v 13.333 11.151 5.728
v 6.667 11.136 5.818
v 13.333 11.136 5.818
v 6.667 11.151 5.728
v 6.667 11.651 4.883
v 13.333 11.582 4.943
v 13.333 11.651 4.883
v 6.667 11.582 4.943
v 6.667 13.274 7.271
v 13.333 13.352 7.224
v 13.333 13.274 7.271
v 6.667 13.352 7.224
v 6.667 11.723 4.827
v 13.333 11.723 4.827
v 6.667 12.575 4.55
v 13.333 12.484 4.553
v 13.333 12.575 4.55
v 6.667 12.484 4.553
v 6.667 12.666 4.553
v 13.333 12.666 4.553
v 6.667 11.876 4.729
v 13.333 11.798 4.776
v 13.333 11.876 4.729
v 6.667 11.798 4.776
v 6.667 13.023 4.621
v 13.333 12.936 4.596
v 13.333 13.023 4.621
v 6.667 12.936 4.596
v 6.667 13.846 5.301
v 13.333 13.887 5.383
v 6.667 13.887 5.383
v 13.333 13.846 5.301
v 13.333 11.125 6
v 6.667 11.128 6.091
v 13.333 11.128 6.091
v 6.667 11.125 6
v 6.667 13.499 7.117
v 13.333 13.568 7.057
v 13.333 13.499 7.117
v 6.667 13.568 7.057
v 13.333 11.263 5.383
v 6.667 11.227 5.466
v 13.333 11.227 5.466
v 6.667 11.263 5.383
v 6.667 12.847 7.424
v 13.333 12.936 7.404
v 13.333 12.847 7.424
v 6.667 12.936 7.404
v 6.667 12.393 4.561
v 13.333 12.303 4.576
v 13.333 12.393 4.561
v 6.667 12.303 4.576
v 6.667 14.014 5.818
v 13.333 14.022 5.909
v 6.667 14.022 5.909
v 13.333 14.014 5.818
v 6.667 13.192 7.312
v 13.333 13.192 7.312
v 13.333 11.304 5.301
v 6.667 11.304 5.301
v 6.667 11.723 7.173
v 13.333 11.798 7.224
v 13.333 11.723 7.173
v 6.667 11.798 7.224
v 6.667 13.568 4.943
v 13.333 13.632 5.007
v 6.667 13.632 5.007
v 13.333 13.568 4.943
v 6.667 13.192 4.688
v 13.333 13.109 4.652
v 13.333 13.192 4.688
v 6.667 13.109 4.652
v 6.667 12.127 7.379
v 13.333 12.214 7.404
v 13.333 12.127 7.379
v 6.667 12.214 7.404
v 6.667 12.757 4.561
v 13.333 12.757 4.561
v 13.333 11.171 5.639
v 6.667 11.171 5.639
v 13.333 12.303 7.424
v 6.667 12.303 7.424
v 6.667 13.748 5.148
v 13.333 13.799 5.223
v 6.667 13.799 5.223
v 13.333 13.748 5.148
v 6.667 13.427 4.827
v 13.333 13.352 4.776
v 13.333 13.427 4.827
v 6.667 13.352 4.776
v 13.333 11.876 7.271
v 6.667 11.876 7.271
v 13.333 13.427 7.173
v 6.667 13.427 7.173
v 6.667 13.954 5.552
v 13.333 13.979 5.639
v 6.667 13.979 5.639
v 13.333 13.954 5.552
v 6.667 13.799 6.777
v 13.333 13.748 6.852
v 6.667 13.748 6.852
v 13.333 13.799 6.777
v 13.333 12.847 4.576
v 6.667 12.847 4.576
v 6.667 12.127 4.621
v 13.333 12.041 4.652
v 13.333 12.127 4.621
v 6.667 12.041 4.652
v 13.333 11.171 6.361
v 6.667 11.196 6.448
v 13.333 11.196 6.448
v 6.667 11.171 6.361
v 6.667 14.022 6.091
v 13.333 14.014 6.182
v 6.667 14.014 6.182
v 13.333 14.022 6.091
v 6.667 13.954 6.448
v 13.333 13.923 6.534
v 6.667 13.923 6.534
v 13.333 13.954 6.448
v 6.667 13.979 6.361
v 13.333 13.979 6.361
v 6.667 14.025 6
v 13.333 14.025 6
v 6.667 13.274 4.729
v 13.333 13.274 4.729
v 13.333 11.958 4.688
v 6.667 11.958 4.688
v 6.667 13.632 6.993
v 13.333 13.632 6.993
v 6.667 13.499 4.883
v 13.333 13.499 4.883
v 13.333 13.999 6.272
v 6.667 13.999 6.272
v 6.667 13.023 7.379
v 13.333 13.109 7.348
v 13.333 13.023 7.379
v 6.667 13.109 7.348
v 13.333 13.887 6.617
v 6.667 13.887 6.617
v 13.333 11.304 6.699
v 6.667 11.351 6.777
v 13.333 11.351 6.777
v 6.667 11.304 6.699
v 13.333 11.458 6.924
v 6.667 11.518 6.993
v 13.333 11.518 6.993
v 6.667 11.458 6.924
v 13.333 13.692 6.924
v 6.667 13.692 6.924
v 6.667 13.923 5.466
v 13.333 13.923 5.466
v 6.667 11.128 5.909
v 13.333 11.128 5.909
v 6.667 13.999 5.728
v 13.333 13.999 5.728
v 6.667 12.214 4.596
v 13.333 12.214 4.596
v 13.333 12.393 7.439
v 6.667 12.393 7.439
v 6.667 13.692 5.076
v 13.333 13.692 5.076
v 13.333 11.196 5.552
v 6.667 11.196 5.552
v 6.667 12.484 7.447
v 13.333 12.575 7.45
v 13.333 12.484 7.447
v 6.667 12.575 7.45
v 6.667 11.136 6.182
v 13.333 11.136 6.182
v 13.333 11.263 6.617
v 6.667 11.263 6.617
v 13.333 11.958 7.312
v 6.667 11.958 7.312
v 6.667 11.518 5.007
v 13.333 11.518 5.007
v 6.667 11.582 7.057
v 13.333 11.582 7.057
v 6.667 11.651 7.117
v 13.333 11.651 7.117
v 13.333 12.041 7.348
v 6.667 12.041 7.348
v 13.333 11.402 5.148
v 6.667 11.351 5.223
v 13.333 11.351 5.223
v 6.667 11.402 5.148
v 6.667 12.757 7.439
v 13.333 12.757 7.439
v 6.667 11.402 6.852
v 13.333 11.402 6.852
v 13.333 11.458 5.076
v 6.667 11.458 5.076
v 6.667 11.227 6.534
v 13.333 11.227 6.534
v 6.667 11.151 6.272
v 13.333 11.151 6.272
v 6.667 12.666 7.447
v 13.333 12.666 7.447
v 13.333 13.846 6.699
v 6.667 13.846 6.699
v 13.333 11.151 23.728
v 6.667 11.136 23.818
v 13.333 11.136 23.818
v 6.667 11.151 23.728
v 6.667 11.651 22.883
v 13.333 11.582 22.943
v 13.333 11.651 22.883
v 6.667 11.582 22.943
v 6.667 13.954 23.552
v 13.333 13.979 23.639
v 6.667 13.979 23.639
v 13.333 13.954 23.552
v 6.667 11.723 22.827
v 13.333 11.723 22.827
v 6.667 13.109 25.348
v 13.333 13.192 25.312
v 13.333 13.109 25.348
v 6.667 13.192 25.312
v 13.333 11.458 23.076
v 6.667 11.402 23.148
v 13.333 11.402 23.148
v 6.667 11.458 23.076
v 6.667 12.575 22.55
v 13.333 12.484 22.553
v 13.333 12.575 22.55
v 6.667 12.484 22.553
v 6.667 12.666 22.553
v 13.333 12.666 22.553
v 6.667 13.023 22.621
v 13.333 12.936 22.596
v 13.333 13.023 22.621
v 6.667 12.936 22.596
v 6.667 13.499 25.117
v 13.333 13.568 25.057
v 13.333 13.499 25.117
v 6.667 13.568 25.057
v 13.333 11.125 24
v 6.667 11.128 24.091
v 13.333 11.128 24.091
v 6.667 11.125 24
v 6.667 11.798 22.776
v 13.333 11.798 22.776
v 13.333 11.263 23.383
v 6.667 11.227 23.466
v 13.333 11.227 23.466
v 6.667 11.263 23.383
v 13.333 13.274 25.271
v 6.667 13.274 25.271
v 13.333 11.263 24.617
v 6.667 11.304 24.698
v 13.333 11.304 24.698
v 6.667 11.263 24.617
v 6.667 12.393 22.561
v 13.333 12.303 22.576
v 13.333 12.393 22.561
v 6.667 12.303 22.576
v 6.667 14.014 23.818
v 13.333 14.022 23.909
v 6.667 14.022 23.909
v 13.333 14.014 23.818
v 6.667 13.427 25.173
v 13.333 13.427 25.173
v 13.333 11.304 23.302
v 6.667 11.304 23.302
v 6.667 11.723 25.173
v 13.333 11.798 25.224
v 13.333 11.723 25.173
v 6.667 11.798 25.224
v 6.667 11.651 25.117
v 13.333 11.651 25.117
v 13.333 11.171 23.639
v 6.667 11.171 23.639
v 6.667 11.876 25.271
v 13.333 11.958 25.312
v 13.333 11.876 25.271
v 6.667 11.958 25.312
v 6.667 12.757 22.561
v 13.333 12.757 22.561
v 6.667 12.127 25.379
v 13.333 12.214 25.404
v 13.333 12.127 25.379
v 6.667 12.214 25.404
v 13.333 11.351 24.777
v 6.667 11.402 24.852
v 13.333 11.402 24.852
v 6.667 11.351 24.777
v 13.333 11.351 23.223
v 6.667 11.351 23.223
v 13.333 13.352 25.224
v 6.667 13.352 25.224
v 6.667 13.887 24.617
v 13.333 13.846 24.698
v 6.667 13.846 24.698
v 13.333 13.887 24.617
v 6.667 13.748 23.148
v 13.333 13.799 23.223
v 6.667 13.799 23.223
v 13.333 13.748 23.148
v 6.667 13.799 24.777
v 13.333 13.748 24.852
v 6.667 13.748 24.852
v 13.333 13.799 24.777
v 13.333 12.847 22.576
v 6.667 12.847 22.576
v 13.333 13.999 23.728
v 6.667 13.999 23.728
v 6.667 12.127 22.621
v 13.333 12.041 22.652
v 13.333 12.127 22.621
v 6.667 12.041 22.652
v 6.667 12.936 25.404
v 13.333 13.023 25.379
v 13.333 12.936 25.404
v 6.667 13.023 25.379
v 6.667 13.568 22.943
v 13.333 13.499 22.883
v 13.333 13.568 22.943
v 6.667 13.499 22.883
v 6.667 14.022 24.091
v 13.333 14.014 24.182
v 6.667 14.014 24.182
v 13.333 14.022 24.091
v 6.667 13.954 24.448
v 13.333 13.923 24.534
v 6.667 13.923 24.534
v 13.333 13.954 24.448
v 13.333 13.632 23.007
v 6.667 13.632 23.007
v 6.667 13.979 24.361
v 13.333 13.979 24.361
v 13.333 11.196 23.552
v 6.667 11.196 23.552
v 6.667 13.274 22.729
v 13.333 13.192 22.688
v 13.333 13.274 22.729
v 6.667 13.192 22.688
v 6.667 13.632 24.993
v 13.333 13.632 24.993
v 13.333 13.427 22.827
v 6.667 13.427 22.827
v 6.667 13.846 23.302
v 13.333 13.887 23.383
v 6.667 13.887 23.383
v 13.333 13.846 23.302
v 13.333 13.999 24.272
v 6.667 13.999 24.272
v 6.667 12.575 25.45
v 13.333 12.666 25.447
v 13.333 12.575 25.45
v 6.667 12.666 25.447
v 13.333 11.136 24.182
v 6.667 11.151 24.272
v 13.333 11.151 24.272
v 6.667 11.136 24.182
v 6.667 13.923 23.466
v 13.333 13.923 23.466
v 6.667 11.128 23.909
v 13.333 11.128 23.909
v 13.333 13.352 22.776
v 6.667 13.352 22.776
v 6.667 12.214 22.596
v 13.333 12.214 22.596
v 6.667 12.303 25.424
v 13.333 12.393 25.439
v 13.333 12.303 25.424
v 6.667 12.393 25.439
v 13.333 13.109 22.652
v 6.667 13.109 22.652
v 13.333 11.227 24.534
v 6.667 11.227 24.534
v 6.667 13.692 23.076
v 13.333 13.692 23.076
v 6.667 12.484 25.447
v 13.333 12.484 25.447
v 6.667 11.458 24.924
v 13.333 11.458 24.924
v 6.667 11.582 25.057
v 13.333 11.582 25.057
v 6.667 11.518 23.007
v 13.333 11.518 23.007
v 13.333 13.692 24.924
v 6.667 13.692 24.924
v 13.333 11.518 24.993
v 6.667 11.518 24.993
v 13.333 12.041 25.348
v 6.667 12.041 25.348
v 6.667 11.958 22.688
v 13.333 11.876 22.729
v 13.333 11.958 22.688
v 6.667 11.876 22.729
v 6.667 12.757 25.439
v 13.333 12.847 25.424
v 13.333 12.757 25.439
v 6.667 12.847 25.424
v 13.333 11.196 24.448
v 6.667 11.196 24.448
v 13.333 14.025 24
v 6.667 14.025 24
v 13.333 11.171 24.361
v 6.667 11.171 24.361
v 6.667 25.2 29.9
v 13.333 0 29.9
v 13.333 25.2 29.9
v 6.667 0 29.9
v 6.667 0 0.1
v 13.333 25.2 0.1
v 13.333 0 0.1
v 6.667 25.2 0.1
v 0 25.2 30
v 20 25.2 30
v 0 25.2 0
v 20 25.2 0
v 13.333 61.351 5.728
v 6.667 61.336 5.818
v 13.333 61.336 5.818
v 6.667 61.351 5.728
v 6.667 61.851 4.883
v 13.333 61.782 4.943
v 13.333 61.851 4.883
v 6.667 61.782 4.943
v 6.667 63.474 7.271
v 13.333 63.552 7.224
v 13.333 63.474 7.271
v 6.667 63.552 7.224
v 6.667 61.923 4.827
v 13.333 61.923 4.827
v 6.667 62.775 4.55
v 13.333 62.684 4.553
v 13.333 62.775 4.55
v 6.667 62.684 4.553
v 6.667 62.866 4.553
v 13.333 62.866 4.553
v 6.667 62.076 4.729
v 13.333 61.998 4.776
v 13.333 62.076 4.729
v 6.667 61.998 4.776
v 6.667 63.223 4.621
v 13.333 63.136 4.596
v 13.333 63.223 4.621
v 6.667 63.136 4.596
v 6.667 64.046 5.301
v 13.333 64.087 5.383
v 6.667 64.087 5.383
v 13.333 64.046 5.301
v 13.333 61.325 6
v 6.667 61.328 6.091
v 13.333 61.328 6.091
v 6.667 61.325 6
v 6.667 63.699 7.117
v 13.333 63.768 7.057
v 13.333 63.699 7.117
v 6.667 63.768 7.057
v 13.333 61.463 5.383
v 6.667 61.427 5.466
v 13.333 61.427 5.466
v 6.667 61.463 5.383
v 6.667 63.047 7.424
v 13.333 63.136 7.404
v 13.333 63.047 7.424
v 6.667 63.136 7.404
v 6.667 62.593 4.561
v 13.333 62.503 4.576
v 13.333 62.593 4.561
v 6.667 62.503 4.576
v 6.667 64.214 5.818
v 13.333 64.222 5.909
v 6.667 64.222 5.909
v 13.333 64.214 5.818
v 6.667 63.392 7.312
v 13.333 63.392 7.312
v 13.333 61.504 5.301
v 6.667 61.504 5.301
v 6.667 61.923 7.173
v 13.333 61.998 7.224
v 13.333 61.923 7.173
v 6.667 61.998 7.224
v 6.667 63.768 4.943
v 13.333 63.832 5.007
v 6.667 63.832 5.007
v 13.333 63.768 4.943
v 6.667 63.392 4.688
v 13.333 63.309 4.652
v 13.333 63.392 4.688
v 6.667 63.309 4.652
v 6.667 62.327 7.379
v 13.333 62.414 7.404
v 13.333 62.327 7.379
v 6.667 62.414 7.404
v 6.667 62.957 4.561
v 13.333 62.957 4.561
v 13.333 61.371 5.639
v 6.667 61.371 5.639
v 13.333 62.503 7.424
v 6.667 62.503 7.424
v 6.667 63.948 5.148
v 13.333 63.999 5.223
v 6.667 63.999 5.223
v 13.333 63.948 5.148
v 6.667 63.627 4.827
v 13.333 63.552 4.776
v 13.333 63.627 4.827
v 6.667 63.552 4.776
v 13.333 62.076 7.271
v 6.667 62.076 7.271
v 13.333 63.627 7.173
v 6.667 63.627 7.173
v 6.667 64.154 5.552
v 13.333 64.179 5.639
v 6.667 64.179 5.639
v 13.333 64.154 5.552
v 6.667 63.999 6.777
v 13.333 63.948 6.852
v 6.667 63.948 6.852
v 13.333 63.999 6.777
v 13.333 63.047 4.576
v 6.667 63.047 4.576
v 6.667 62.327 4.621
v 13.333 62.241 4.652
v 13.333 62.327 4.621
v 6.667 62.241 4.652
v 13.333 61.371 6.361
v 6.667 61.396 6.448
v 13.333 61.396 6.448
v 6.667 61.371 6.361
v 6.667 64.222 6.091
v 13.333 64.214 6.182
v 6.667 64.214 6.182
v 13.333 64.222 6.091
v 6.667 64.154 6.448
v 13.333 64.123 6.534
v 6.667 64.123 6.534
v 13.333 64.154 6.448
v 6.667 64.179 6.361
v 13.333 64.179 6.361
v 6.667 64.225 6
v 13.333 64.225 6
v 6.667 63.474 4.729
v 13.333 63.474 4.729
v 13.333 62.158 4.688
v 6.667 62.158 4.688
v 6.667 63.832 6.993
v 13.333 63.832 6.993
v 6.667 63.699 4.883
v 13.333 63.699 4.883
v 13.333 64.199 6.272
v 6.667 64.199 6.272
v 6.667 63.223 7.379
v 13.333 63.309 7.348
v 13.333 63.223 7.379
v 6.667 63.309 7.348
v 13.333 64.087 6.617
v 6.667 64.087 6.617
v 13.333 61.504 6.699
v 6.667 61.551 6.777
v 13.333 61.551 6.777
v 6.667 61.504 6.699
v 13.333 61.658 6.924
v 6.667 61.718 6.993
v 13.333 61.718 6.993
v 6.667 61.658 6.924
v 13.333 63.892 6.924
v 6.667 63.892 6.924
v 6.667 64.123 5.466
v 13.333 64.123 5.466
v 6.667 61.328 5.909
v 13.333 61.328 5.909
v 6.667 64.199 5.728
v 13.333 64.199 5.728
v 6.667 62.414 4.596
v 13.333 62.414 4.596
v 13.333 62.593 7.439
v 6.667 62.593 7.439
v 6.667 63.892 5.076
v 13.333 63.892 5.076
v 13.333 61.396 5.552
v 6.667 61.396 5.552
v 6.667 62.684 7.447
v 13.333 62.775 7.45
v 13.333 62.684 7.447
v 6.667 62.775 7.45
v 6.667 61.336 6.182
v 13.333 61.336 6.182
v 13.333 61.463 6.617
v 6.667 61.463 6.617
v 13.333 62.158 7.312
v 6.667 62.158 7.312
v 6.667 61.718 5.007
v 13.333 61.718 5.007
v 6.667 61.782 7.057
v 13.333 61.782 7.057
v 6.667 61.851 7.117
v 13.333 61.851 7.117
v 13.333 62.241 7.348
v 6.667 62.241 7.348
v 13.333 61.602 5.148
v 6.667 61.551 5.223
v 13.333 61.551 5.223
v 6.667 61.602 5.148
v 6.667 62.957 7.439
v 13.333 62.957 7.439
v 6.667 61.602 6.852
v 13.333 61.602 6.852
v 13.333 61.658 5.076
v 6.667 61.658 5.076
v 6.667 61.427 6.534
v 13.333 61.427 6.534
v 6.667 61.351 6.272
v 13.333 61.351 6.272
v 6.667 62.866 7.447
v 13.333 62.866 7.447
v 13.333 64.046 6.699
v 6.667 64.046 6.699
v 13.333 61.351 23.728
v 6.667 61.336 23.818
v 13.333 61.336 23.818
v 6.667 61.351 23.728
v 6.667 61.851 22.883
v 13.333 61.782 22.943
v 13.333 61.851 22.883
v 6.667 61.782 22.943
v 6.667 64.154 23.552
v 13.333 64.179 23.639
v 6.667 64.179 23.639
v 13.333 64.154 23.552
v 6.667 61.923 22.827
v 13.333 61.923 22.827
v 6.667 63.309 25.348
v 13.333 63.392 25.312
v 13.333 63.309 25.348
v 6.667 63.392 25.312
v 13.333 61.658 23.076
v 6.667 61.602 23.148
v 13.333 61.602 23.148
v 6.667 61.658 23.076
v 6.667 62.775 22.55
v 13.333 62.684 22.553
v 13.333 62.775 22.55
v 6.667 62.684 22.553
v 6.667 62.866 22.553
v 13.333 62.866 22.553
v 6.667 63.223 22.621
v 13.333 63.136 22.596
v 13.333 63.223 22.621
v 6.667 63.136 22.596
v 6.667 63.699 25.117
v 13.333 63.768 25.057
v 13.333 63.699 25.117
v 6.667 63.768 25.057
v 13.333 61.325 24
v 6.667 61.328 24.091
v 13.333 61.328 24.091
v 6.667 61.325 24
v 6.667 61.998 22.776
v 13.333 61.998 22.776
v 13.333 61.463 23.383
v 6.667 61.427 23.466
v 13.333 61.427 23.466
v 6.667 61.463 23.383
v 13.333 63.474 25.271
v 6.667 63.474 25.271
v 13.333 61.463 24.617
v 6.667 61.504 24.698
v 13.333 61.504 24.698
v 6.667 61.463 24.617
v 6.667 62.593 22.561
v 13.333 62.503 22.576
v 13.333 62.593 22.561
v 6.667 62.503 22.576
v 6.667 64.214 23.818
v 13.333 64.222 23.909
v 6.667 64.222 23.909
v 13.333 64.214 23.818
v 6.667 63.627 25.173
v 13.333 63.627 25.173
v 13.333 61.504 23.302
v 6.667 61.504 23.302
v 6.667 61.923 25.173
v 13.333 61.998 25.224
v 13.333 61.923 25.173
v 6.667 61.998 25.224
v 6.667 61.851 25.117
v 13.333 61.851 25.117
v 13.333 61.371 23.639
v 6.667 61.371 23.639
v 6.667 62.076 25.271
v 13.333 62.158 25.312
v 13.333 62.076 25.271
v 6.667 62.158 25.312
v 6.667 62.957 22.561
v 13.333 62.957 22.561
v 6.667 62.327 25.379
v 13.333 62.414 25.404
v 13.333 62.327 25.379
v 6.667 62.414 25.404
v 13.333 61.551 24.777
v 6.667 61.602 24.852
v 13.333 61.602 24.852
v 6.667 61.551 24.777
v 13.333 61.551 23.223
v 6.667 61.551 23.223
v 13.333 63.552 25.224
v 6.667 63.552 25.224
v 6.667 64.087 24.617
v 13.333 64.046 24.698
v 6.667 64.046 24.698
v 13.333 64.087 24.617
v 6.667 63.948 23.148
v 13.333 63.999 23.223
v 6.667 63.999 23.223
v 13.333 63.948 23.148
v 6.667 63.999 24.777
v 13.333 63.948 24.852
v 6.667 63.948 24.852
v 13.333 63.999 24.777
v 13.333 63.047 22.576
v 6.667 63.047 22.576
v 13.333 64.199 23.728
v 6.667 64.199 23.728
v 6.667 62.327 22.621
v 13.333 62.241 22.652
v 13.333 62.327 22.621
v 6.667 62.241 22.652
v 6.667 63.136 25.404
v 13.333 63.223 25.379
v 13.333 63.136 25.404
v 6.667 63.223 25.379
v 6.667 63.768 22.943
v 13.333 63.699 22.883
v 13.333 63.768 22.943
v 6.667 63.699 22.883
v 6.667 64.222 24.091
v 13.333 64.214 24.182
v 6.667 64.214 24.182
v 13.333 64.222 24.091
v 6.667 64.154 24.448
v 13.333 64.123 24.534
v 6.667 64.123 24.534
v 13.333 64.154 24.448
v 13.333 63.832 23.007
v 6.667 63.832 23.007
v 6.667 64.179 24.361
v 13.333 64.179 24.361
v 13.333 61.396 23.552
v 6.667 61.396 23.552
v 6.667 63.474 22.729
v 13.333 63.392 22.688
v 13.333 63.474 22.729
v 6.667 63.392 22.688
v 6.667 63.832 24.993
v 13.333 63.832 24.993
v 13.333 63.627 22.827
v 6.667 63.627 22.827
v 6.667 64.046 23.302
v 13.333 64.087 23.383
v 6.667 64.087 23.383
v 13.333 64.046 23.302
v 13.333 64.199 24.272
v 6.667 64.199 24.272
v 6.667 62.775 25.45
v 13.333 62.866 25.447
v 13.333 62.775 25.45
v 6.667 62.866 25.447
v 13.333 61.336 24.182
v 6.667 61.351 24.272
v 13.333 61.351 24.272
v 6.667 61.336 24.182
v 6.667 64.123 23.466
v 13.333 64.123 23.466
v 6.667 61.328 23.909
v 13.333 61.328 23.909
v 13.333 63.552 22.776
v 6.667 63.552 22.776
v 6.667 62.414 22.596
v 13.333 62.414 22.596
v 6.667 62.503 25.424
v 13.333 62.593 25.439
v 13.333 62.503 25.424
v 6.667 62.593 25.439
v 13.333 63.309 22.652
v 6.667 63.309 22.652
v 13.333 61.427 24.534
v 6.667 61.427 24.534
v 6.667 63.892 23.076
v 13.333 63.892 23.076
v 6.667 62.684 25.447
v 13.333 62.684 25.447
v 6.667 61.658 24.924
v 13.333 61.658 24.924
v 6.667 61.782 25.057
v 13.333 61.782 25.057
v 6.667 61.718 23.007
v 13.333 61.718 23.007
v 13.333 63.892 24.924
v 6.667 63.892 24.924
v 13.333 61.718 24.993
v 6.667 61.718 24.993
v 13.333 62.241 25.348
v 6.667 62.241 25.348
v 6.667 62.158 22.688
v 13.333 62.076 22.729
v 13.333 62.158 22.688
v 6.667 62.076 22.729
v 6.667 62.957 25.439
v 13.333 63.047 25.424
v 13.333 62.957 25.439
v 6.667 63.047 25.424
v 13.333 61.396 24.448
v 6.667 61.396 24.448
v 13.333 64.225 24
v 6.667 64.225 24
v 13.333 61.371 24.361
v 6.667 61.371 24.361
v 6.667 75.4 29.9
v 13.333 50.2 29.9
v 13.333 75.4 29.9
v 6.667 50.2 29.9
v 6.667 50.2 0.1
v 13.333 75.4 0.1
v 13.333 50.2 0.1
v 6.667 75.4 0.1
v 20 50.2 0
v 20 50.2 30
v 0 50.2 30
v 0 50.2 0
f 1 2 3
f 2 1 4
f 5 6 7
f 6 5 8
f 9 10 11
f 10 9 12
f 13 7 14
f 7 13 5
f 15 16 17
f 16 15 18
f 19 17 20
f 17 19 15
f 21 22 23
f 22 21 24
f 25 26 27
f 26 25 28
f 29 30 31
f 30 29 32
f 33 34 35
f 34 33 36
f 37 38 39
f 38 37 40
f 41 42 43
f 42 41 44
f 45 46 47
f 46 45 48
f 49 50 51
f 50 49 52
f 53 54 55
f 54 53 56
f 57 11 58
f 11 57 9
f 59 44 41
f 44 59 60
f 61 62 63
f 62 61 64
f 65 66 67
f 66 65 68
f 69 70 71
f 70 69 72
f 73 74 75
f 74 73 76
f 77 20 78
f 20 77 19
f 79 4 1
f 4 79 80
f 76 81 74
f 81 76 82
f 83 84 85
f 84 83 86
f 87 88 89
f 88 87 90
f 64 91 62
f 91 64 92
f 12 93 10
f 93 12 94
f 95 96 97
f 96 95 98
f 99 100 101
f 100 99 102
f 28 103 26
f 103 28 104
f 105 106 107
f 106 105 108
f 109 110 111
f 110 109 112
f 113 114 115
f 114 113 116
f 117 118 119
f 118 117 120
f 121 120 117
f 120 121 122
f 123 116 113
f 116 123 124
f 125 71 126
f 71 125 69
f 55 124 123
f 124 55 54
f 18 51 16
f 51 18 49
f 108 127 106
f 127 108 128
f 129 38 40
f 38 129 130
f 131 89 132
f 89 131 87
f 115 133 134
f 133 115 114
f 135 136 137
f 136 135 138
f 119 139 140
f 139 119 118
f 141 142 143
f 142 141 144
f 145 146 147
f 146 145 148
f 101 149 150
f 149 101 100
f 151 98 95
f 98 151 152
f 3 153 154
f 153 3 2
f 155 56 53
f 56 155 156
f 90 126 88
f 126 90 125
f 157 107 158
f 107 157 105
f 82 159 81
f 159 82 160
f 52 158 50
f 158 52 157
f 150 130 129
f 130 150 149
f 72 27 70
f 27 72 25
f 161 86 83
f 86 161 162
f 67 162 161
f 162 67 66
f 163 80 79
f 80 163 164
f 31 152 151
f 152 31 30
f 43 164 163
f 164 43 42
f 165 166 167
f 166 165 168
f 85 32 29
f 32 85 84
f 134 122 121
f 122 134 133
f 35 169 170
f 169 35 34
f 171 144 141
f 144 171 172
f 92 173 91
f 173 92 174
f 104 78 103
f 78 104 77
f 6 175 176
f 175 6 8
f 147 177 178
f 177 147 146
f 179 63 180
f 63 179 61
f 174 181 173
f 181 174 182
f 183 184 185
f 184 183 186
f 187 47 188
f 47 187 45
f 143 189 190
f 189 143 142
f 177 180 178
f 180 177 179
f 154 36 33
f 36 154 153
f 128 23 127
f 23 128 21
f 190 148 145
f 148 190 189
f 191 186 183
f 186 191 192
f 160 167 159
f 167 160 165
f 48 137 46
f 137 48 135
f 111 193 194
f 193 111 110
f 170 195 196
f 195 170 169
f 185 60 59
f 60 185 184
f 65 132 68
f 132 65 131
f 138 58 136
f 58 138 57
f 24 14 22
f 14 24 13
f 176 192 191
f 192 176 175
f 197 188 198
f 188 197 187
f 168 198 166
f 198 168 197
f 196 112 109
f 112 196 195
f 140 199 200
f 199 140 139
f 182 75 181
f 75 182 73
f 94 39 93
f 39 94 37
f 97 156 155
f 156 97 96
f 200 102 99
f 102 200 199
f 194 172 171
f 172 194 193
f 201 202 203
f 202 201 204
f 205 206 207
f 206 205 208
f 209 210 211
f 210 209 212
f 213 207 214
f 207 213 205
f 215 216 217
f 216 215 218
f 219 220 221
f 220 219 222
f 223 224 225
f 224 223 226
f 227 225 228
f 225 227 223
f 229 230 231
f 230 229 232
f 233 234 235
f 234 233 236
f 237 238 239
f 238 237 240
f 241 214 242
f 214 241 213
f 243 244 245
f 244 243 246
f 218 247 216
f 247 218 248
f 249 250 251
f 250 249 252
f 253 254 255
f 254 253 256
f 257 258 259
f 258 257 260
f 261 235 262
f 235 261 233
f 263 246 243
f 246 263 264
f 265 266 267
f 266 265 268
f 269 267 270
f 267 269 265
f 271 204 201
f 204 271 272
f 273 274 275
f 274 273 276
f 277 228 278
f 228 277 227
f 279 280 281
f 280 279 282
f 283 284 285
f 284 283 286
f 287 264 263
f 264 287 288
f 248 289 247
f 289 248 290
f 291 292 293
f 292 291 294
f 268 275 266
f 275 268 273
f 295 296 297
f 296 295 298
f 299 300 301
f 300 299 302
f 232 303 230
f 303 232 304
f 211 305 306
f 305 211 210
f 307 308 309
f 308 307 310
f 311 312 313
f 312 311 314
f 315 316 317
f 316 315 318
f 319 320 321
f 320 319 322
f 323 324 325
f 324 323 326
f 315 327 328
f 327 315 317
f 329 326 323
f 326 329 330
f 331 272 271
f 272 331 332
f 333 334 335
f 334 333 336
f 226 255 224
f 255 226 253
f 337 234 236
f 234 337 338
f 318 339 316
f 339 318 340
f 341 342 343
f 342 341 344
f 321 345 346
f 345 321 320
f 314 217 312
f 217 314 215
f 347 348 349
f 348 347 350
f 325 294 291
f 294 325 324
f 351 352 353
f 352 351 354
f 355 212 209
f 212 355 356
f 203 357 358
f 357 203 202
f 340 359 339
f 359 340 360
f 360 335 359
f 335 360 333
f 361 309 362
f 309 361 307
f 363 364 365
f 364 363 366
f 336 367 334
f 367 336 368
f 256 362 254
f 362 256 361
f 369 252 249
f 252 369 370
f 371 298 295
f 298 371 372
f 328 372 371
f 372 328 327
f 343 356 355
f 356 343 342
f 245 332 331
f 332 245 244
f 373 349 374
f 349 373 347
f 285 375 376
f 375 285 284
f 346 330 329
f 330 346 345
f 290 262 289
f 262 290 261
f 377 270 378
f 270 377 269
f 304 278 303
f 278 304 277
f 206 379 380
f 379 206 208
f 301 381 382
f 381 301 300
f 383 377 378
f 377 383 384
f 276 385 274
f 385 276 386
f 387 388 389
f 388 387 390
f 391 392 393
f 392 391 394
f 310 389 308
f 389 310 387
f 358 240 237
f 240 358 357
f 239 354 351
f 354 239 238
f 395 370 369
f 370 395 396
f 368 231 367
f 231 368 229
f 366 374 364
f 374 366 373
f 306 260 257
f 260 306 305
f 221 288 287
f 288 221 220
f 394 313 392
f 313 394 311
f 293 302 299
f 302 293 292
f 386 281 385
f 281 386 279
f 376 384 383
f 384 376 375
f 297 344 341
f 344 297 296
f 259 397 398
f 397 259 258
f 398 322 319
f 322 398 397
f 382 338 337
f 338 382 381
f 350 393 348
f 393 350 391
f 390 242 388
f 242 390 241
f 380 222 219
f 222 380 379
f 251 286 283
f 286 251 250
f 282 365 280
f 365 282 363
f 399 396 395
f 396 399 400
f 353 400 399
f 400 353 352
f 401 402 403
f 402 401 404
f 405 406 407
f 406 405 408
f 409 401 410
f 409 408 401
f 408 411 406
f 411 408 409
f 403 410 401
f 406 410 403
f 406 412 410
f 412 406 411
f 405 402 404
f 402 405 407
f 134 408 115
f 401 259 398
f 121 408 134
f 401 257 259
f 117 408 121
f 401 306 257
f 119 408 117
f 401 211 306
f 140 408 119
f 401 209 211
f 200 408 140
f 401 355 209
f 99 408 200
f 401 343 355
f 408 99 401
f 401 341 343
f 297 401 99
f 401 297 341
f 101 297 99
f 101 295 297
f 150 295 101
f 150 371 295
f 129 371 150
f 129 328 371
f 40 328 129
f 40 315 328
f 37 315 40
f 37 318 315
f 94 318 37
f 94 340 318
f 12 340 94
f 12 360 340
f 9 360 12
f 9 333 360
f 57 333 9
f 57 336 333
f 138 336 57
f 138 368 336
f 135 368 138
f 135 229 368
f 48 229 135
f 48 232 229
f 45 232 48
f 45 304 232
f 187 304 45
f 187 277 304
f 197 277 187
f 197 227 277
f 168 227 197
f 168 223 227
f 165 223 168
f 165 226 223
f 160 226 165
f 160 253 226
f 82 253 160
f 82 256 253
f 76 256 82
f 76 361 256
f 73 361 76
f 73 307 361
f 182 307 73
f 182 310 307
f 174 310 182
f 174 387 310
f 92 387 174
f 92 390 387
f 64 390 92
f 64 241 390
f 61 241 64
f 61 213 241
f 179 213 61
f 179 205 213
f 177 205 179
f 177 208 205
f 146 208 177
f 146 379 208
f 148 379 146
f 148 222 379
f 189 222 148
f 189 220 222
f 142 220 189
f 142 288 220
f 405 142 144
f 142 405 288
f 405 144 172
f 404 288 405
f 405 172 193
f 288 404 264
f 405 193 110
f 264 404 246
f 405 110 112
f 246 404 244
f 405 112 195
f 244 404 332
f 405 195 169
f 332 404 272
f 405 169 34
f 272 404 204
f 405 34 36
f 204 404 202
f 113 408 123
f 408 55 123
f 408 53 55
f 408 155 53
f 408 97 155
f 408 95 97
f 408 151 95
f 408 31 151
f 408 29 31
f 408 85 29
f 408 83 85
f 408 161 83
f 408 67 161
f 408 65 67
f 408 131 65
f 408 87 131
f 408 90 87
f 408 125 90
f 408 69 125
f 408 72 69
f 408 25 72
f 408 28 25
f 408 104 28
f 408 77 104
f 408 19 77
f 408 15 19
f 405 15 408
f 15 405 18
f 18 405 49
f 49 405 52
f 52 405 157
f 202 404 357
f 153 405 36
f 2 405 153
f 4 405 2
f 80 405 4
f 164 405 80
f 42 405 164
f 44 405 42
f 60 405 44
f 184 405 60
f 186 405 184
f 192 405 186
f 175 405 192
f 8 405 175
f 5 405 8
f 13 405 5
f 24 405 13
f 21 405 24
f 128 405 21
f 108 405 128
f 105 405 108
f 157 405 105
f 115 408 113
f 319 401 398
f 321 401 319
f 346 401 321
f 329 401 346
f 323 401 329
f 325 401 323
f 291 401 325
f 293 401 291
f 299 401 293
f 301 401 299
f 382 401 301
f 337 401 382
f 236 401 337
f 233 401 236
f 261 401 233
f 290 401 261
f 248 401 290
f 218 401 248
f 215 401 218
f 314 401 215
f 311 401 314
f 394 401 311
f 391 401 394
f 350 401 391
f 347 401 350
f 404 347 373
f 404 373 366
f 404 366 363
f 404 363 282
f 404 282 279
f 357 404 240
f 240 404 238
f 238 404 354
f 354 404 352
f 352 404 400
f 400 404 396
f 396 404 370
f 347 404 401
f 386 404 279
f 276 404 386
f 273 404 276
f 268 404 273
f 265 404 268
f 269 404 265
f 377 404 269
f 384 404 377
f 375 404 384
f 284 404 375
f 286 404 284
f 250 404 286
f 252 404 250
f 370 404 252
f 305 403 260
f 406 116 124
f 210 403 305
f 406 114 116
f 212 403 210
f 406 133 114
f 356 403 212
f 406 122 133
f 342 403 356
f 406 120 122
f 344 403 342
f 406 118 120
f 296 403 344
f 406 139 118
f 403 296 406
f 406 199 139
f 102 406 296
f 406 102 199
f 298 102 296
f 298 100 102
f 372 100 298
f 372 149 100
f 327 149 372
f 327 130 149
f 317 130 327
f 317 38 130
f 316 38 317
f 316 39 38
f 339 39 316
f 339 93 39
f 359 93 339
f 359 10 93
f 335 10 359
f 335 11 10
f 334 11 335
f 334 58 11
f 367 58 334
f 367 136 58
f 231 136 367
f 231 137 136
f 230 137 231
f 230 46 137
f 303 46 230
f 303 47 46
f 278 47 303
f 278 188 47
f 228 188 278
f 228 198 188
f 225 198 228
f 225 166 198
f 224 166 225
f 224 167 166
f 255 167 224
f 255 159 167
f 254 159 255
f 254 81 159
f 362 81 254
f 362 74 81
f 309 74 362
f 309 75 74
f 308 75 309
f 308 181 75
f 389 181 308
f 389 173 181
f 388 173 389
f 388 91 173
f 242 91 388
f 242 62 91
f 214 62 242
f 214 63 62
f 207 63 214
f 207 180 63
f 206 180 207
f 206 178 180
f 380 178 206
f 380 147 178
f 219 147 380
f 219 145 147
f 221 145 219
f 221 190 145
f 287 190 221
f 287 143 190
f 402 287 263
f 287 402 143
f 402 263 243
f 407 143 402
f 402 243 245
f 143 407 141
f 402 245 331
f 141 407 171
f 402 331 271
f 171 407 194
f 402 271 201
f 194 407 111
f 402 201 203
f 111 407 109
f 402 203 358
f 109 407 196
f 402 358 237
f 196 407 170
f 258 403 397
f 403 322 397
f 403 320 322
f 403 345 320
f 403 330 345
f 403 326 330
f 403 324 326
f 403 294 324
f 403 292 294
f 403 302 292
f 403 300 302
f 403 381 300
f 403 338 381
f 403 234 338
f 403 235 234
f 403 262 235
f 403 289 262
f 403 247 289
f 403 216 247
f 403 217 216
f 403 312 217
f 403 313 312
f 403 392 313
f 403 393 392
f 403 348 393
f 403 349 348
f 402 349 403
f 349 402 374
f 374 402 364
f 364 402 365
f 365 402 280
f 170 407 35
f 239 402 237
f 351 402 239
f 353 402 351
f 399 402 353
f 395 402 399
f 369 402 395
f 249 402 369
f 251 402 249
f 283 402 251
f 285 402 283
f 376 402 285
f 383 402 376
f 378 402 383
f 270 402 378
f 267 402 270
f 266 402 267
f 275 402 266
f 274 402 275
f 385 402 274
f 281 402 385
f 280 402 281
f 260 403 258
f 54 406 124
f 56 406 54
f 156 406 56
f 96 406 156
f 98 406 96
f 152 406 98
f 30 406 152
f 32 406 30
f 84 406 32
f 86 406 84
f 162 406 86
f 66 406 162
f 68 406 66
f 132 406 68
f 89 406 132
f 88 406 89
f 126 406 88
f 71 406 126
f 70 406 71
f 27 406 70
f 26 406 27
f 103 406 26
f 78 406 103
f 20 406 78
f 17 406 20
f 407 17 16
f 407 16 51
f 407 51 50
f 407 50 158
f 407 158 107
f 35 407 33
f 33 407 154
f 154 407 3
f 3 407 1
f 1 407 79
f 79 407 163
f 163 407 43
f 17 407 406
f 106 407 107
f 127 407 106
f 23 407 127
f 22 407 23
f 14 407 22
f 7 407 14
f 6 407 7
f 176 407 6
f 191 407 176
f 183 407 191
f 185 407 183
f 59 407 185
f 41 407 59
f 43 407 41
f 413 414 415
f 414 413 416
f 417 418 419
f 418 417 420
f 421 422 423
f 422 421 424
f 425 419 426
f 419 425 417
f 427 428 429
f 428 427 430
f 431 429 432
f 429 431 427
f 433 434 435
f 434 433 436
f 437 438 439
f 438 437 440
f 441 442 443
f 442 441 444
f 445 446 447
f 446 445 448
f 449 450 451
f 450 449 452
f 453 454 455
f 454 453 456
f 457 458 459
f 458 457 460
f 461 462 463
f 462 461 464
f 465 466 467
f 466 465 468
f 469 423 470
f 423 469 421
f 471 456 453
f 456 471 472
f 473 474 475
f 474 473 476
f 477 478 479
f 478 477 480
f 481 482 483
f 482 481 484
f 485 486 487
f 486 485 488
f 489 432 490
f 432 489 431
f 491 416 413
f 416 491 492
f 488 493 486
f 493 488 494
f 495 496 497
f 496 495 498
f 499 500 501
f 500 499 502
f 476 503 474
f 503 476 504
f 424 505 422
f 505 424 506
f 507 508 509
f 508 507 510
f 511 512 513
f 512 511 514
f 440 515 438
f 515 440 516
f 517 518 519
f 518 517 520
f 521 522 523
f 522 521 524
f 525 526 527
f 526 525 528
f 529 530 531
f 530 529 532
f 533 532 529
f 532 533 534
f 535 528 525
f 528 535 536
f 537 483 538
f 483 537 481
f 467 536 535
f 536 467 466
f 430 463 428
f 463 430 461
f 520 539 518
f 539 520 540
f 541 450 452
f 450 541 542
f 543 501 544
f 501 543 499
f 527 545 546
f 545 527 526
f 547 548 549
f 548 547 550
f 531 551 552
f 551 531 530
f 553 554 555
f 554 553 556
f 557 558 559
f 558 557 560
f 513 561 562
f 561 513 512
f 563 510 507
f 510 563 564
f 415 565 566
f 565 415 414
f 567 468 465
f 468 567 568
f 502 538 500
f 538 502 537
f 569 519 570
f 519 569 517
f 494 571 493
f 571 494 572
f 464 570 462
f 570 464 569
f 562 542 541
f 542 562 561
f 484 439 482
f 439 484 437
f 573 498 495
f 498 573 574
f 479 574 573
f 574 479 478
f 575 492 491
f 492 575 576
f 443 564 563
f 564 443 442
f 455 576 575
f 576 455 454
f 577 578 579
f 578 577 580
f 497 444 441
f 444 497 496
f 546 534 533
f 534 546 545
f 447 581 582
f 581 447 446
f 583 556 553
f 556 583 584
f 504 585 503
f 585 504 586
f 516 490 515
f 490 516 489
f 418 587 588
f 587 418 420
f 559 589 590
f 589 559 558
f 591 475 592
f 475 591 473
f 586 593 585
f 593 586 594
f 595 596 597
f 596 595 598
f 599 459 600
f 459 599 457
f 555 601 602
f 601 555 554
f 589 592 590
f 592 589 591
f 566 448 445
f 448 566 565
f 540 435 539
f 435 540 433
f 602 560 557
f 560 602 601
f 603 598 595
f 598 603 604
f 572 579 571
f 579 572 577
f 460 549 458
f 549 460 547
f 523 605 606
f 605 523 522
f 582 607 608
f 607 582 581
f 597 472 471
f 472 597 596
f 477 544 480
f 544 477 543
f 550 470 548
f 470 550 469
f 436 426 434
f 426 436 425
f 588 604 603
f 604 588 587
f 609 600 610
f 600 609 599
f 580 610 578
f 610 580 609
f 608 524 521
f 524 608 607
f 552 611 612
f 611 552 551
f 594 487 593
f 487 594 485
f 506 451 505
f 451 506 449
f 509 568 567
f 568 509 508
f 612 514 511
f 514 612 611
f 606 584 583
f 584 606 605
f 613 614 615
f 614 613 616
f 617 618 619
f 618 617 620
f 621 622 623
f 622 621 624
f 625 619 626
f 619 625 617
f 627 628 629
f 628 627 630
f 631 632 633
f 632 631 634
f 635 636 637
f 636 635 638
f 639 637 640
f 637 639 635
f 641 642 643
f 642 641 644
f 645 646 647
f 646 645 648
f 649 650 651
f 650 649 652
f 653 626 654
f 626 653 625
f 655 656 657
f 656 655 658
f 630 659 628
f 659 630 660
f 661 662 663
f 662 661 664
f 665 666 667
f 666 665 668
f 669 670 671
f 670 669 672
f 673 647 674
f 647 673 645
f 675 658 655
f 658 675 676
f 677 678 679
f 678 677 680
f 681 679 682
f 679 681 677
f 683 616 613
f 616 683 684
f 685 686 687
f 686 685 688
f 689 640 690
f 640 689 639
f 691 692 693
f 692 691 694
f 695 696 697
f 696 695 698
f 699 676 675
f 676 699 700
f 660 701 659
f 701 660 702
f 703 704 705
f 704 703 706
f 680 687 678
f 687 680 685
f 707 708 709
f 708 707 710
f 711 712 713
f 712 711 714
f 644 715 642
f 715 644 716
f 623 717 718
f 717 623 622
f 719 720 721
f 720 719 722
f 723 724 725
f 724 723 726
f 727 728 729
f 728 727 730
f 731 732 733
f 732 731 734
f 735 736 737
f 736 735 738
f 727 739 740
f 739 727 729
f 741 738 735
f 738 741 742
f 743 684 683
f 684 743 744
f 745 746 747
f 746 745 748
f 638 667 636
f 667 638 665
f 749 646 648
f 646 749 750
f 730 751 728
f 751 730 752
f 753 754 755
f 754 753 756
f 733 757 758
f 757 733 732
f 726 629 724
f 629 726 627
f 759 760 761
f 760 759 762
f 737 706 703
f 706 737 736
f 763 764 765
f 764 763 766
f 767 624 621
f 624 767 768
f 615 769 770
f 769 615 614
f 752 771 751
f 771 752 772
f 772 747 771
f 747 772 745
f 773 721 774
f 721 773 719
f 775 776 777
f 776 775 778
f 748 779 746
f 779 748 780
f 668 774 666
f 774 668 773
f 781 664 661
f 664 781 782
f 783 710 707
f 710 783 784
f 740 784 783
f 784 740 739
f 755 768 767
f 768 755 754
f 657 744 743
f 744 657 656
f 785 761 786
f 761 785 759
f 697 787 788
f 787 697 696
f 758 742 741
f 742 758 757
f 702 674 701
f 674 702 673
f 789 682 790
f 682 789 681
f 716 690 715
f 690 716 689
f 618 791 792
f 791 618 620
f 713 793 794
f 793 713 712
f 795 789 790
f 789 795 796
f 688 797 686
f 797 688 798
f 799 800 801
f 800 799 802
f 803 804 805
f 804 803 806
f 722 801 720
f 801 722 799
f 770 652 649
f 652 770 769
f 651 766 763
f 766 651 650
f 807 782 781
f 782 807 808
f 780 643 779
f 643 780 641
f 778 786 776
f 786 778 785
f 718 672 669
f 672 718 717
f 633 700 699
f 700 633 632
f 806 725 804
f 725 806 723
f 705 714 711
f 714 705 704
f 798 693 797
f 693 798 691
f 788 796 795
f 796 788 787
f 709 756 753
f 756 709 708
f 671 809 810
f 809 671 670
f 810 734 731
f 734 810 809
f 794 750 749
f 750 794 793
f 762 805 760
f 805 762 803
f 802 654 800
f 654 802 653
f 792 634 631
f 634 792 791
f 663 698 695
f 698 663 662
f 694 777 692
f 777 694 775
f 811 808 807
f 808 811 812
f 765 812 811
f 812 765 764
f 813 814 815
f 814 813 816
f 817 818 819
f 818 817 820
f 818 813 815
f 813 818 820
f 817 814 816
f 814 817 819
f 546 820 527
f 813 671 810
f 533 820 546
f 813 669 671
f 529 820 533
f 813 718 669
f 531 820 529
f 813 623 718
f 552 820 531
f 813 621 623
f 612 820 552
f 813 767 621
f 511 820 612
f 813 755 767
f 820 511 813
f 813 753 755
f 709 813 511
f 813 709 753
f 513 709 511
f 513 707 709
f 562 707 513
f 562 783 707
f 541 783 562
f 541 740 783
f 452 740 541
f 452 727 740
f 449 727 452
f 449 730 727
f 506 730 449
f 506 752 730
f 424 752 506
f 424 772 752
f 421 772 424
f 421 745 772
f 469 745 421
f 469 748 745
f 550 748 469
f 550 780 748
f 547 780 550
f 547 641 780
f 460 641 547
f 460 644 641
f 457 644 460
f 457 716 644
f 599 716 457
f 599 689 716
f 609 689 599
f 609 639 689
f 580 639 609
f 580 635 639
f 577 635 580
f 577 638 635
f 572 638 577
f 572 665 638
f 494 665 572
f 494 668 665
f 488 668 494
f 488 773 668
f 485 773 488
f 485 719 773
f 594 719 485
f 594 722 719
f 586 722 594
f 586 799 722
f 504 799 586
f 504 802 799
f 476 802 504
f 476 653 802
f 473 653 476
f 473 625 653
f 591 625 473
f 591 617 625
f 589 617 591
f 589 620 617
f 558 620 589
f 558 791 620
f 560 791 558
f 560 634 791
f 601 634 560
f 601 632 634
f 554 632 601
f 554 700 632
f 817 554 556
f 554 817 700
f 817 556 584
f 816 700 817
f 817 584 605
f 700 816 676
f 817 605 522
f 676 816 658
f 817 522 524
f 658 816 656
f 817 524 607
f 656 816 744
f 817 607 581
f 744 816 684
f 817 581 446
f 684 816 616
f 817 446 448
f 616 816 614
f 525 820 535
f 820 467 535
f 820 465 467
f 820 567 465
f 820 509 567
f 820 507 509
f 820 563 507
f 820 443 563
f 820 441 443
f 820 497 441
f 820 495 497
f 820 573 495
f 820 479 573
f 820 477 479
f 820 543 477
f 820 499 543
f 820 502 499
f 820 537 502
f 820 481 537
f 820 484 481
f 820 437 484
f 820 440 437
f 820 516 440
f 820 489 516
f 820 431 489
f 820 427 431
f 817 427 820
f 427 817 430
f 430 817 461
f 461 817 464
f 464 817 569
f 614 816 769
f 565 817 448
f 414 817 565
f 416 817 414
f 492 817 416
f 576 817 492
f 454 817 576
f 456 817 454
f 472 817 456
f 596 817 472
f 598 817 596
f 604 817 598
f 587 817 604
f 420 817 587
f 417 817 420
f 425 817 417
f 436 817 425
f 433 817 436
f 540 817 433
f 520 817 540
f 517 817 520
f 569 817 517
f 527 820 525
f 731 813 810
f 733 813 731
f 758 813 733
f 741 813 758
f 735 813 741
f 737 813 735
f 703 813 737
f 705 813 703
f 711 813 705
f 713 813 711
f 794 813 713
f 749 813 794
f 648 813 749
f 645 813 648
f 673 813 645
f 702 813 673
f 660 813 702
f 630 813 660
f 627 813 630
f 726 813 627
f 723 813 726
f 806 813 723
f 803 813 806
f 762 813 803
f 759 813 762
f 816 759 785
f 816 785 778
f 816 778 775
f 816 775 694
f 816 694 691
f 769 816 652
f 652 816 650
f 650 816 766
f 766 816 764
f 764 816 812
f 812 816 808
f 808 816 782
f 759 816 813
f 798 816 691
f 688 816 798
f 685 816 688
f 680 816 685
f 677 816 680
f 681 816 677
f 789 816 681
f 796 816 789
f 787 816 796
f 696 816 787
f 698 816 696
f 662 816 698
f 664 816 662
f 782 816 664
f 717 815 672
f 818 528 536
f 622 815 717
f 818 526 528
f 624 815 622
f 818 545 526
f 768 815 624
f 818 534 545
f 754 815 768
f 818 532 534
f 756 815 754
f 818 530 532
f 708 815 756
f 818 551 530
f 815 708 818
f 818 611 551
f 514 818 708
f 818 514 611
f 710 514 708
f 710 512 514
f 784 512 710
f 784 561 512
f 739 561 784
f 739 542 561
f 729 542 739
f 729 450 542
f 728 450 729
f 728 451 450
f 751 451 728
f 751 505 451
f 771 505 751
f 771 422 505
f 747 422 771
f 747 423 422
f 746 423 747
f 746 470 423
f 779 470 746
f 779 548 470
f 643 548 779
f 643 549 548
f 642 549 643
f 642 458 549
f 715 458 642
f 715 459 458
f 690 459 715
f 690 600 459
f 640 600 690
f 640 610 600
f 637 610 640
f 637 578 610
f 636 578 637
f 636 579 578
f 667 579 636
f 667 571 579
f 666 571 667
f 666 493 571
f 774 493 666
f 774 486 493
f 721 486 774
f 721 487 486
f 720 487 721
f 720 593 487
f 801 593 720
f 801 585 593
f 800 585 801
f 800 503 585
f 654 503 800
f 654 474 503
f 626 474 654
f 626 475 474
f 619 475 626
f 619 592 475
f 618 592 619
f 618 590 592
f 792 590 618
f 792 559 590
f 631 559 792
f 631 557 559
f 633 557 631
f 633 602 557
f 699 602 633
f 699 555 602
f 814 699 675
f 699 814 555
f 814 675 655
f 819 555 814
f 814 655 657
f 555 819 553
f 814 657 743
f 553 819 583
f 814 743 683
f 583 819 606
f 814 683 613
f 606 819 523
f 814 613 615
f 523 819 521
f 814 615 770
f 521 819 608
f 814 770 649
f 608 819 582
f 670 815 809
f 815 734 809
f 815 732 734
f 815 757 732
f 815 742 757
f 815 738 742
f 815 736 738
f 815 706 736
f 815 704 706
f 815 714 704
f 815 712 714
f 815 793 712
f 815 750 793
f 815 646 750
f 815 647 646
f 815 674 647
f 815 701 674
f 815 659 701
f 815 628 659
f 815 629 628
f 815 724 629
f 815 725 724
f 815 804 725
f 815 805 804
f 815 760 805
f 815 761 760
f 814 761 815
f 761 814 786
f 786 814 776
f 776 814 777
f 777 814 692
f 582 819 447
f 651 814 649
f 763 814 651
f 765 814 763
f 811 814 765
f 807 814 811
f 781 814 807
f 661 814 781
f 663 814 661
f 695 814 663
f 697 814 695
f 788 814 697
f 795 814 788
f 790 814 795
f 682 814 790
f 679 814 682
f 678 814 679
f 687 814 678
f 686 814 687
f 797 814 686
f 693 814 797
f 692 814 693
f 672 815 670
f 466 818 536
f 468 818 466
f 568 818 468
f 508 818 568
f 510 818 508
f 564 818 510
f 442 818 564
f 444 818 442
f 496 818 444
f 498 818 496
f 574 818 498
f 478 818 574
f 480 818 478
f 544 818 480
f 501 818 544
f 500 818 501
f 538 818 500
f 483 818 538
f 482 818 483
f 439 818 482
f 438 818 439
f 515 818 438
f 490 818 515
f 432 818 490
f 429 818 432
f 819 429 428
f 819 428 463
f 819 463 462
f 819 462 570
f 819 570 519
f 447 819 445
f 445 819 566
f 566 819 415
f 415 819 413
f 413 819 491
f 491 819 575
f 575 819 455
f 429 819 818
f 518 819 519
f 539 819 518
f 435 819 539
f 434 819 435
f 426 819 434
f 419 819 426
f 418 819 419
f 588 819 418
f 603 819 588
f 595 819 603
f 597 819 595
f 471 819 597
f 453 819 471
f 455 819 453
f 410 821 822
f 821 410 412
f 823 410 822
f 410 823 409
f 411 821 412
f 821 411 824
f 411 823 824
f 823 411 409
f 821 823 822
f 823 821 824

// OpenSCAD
// file: ../frame_bar_extension_25mm_base.scad
// Frame Bar Extension
// This extension piece connects two frame bars with a configurable middle section
include <../../shared_helper.scad>;

revision = 1.2;

// TODO: Add in M4 Alternative
// TODO: Add in NUT Alternatives for M4 and M3

// Adjustable values
extension_length = 25.0;                  // Length of the extension middle section (adjustable)

hole_diameter = m3_hole_diameter;         // Using M3 holes from shared_helper

countersunk_hole_diameter = m3_head_diameter;
countersunk_hole_depth = m3_head_depth + 0.5;

knurled_insert_diameter = m3_type1_knurled_insert_diameter;
knurled_insert_depth = m3_type1_knurled_insert_depth;

// Frame bar connector dimensions
connector_width = 20.0;                   // Width of the frame bar connector
connector_height = 30.0;                  // Height of the frame bar connector
mount_depth = 25.0;                       // Depth of the connector interfaces

// Hole specifications
hole_top_margin = 3.7 + (2.3);            // Distance from top edge to first hole center
hole_spacing = 13.4;                      // Distance between hole centers
hole_front_margin = 10.2 - (2.3) + 4.675; // Distance from front edge to hole centers

// Tolerance for better fit
fit_tolerance = 0.2;                      // Tolerance for male connector to fit into female

// Derived values
mounting_width_void = connector_width / 3.0;

module mounting_holes() {
  translate([0, hole_front_margin, hole_top_margin]) {
    rotate([0, 90, 0]) {
      cylinder(d=hole_diameter, h=100.00);
    }
  }

  translate([0, hole_front_margin, connector_height - hole_top_margin]) {
    rotate([0, 90, 0]) {
      cylinder(d=hole_diameter, h=100.00);
    }
  }
}

module countersunk_holes() {
  translate([0, hole_front_margin, hole_top_margin]) {
    rotate([0, 90, 0]) {
      cylinder(d=countersunk_hole_diameter, h=countersunk_hole_depth);
    }
  }

  translate([0, hole_front_margin, connector_height - hole_top_margin]) {
    rotate([0, 90, 0]) {
      cylinder(d=countersunk_hole_diameter, h=countersunk_hole_depth);
    }
  }
}

module heat_insert_holes() {
  translate([(connector_width - knurled_insert_depth), hole_front_margin, hole_top_margin]) {
    rotate([0, 90, 0]) {
      cylinder(d=knurled_insert_diameter, h=knurled_insert_depth);
    }
  }

  translate([(connector_width - knurled_insert_depth), hole_front_margin, connector_height - hole_top_margin]) {
    rotate([0, 90, 0]) {
      cylinder(d=knurled_insert_diameter, h=knurled_insert_depth);
    }
  }
}

module female_mount() {
  difference() {
    cube([connector_width, mount_depth, connector_height]);
    // Mounting space
    translate([mounting_width_void, 0, 0]) {
      cube([mounting_width_void, mount_depth, connector_height]);
    }

    mounting_holes();
    countersunk_holes();
    heat_insert_holes();
  }
}

module male_mount() {
  difference() {
    // Apply tolerance to the male connector width and height
    translate([fit_tolerance/2, 0, fit_tolerance/2]) {
      cube([connector_width - fit_tolerance, mount_depth + fit_tolerance, connector_height - fit_tolerance]);
    }

    // Mounting spaces - adjusted for the new position
    translate([fit_tolerance/2, 0, fit_tolerance/2]) {
      cube([mounting_width_void - fit_tolerance/2, mount_depth + fit_tolerance, connector_height - fit_tolerance]);
    }

    translate([connector_width - mounting_width_void, 0, fit_tolerance/2]) {
      cube([mounting_width_void - fit_tolerance/2, mount_depth + fit_tolerance, connector_height - fit_tolerance]);
    }

    // Holes - keep original positions to maintain alignment
    mounting_holes();
  }
}

module extension() {
  cube([connector_width, extension_length, connector_height]);
}
// main file
// Frame Bar Extension
// This extension piece connects two frame bars with a configurable middle section
include <../frame_bar_extension_25mm_base.scad>;

revision = 1.2;

module heat_insert_holes() {}

module frame_bar_extension() {
  union() {
    // female_mount();
    male_mount();

    translate([0, mount_depth + fit_tolerance, 0]) {
      extension();
    }

    translate([0, mount_depth + fit_tolerance + extension_length, 0]) {
      male_mount();
    }
  }
}

// Render the extension piece
frame_bar_extension();
